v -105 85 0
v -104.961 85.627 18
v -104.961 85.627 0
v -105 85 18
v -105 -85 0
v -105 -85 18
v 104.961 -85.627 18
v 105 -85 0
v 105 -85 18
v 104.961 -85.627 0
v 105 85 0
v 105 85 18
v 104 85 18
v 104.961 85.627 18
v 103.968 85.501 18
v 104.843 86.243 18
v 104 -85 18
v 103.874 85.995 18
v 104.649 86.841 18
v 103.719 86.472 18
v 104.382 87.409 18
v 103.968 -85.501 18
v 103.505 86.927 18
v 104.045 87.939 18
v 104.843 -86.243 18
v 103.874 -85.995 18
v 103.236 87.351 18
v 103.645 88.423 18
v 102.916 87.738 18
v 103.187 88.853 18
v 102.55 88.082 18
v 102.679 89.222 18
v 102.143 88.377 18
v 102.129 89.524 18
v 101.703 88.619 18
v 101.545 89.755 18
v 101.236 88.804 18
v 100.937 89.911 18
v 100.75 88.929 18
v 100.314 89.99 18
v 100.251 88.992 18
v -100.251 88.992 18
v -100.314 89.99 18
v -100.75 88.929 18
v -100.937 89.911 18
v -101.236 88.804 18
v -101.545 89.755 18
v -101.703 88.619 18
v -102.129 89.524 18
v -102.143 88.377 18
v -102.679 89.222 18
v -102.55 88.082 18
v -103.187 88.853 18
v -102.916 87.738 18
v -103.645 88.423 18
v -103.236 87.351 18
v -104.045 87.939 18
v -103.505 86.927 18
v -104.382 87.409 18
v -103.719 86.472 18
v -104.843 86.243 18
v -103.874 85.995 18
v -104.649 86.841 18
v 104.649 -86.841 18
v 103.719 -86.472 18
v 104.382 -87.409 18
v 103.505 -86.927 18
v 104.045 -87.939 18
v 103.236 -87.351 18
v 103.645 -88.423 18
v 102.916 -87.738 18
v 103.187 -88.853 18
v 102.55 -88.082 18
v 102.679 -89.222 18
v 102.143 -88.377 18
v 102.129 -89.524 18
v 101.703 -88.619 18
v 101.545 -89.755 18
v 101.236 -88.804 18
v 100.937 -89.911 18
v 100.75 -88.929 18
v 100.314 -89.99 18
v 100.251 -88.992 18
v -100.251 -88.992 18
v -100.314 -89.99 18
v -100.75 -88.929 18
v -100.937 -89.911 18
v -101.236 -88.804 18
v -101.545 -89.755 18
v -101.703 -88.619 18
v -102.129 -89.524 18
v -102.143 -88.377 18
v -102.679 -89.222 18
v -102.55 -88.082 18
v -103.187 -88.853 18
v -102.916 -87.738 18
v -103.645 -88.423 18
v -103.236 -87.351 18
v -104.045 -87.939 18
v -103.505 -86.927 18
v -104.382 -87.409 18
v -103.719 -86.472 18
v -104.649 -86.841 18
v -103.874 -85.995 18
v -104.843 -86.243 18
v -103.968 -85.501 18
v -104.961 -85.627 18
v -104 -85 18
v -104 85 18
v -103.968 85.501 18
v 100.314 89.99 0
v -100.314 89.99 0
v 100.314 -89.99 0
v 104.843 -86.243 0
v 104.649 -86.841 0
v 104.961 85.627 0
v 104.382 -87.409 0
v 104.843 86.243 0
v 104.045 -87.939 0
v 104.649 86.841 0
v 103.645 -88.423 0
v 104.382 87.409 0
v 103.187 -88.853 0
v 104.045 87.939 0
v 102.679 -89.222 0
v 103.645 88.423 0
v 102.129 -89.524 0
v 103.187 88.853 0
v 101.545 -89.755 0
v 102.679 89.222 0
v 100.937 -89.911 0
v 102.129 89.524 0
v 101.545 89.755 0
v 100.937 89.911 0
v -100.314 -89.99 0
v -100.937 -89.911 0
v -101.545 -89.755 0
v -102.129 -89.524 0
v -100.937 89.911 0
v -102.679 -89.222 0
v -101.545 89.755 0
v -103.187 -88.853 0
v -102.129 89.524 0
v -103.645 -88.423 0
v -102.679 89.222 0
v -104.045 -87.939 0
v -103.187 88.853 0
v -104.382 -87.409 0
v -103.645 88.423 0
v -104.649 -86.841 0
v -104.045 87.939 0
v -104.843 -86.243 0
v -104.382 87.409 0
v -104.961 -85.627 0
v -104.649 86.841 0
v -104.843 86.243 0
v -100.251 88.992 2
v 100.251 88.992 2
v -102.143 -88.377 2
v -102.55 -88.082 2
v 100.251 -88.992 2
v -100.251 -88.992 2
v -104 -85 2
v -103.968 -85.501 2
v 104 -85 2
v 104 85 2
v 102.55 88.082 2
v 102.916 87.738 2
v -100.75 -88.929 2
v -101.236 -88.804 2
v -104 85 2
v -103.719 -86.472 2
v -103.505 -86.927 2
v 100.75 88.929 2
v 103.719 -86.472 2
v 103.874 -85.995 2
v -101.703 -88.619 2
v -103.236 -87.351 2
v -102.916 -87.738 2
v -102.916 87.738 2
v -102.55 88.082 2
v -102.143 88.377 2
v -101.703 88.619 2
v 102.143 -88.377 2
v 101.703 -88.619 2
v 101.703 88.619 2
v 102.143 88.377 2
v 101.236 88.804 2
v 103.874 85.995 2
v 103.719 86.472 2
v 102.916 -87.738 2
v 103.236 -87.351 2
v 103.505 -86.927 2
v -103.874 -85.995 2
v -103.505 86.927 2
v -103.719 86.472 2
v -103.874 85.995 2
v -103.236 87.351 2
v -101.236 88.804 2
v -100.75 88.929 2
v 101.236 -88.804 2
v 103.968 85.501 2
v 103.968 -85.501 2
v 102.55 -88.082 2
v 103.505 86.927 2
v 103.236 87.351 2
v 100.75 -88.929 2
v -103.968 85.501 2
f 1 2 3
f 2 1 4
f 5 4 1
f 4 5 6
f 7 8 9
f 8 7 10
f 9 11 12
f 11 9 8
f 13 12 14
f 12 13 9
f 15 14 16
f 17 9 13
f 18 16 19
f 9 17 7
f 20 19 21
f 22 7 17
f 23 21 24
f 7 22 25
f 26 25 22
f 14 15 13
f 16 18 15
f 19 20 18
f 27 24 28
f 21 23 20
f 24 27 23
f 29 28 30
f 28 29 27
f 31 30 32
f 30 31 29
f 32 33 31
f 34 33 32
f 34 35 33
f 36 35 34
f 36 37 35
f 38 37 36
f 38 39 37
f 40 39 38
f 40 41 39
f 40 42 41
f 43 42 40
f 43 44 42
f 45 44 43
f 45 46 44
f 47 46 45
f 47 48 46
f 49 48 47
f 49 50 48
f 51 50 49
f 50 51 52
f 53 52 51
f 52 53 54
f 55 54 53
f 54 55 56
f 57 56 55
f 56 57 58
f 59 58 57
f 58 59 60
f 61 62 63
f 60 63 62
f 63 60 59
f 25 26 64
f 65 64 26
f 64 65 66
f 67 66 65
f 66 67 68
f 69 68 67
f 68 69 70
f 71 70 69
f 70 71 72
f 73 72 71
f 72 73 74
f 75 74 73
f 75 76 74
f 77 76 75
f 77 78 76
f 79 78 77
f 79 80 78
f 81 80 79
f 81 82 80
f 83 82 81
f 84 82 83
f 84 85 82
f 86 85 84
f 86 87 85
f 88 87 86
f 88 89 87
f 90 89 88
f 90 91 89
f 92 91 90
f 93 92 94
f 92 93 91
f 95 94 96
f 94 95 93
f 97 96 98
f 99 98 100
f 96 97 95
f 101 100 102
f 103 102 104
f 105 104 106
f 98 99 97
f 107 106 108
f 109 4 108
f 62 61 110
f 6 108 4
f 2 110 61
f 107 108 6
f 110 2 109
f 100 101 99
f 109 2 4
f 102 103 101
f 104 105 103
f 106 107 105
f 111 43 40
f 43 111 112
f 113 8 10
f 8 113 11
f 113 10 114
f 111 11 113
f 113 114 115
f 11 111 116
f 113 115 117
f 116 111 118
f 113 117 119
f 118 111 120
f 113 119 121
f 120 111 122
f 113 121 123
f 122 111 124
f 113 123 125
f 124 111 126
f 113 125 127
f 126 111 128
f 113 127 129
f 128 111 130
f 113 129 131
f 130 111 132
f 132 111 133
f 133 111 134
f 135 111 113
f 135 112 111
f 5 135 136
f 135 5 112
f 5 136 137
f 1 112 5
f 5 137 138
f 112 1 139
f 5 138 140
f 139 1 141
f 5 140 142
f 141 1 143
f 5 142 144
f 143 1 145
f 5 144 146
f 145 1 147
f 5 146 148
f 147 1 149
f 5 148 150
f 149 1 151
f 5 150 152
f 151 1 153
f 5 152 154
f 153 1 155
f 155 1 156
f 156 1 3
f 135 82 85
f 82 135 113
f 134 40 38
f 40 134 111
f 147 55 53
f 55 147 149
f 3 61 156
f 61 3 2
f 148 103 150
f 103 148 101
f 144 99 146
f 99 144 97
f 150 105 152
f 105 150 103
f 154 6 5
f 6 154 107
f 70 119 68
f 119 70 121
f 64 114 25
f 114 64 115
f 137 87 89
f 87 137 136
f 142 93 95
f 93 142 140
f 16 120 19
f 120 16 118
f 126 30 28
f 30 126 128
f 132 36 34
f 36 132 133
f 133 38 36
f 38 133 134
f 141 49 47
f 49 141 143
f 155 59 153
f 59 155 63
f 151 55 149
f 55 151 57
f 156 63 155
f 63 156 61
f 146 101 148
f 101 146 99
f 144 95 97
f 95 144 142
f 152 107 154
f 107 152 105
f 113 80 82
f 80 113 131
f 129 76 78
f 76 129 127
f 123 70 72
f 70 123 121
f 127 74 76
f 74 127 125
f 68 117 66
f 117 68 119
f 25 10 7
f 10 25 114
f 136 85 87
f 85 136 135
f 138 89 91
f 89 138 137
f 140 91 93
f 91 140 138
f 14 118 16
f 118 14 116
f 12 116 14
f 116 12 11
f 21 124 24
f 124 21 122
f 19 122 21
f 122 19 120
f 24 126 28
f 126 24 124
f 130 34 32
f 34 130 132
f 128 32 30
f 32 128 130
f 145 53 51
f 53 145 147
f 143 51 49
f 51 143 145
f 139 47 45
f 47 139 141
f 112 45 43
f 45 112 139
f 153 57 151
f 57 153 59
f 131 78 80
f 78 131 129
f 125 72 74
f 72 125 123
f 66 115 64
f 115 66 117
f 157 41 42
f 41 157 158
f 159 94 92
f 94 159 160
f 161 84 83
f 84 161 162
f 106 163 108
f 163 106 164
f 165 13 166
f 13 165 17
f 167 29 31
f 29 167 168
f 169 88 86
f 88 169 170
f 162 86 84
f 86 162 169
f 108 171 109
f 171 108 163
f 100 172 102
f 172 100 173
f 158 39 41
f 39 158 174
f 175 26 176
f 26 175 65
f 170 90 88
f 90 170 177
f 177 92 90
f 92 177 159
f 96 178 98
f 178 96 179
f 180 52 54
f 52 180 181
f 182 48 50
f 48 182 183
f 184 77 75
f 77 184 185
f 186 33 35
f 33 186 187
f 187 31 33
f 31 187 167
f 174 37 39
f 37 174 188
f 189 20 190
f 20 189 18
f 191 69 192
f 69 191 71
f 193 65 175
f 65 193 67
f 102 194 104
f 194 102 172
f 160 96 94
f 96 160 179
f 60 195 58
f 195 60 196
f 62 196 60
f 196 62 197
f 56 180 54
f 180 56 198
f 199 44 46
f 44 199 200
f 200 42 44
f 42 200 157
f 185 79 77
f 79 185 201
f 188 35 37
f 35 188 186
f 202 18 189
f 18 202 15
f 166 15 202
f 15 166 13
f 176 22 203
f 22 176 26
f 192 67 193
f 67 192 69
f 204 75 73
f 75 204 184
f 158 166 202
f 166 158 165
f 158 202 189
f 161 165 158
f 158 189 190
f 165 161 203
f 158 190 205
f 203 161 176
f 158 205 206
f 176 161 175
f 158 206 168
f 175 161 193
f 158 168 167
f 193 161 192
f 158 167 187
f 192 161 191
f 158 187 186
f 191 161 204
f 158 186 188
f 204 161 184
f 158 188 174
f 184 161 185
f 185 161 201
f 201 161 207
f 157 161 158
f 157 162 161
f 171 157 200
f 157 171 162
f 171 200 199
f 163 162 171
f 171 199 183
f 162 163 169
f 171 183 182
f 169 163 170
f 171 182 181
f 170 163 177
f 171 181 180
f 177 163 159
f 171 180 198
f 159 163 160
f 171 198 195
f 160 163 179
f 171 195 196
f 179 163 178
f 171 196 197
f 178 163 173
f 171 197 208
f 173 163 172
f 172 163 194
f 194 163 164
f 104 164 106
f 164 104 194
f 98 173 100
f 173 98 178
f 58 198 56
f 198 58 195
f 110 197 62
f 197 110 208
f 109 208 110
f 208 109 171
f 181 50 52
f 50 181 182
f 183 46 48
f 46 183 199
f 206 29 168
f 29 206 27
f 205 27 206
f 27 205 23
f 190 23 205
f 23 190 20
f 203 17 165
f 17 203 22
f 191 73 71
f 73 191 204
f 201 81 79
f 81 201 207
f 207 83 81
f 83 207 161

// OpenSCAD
$fn = 50;


difference() {
	union() {
		hull() {
			translate(v = [-100.0000000000, 85.0000000000, 0]) {
				cylinder(h = 18, r = 5);
			}
			translate(v = [100.0000000000, 85.0000000000, 0]) {
				cylinder(h = 18, r = 5);
			}
			translate(v = [-100.0000000000, -85.0000000000, 0]) {
				cylinder(h = 18, r = 5);
			}
			translate(v = [100.0000000000, -85.0000000000, 0]) {
				cylinder(h = 18, r = 5);
			}
		}
	}
	union() {
		translate(v = [0, 0, 2]) {
			hull() {
				translate(v = [-100.0000000000, 85.0000000000, 0]) {
					cylinder(h = 16, r = 4);
				}
				translate(v = [100.0000000000, 85.0000000000, 0]) {
					cylinder(h = 16, r = 4);
				}
				translate(v = [-100.0000000000, -85.0000000000, 0]) {
					cylinder(h = 16, r = 4);
				}
				translate(v = [100.0000000000, -85.0000000000, 0]) {
					cylinder(h = 16, r = 4);
				}
			}
		}
	}
}
